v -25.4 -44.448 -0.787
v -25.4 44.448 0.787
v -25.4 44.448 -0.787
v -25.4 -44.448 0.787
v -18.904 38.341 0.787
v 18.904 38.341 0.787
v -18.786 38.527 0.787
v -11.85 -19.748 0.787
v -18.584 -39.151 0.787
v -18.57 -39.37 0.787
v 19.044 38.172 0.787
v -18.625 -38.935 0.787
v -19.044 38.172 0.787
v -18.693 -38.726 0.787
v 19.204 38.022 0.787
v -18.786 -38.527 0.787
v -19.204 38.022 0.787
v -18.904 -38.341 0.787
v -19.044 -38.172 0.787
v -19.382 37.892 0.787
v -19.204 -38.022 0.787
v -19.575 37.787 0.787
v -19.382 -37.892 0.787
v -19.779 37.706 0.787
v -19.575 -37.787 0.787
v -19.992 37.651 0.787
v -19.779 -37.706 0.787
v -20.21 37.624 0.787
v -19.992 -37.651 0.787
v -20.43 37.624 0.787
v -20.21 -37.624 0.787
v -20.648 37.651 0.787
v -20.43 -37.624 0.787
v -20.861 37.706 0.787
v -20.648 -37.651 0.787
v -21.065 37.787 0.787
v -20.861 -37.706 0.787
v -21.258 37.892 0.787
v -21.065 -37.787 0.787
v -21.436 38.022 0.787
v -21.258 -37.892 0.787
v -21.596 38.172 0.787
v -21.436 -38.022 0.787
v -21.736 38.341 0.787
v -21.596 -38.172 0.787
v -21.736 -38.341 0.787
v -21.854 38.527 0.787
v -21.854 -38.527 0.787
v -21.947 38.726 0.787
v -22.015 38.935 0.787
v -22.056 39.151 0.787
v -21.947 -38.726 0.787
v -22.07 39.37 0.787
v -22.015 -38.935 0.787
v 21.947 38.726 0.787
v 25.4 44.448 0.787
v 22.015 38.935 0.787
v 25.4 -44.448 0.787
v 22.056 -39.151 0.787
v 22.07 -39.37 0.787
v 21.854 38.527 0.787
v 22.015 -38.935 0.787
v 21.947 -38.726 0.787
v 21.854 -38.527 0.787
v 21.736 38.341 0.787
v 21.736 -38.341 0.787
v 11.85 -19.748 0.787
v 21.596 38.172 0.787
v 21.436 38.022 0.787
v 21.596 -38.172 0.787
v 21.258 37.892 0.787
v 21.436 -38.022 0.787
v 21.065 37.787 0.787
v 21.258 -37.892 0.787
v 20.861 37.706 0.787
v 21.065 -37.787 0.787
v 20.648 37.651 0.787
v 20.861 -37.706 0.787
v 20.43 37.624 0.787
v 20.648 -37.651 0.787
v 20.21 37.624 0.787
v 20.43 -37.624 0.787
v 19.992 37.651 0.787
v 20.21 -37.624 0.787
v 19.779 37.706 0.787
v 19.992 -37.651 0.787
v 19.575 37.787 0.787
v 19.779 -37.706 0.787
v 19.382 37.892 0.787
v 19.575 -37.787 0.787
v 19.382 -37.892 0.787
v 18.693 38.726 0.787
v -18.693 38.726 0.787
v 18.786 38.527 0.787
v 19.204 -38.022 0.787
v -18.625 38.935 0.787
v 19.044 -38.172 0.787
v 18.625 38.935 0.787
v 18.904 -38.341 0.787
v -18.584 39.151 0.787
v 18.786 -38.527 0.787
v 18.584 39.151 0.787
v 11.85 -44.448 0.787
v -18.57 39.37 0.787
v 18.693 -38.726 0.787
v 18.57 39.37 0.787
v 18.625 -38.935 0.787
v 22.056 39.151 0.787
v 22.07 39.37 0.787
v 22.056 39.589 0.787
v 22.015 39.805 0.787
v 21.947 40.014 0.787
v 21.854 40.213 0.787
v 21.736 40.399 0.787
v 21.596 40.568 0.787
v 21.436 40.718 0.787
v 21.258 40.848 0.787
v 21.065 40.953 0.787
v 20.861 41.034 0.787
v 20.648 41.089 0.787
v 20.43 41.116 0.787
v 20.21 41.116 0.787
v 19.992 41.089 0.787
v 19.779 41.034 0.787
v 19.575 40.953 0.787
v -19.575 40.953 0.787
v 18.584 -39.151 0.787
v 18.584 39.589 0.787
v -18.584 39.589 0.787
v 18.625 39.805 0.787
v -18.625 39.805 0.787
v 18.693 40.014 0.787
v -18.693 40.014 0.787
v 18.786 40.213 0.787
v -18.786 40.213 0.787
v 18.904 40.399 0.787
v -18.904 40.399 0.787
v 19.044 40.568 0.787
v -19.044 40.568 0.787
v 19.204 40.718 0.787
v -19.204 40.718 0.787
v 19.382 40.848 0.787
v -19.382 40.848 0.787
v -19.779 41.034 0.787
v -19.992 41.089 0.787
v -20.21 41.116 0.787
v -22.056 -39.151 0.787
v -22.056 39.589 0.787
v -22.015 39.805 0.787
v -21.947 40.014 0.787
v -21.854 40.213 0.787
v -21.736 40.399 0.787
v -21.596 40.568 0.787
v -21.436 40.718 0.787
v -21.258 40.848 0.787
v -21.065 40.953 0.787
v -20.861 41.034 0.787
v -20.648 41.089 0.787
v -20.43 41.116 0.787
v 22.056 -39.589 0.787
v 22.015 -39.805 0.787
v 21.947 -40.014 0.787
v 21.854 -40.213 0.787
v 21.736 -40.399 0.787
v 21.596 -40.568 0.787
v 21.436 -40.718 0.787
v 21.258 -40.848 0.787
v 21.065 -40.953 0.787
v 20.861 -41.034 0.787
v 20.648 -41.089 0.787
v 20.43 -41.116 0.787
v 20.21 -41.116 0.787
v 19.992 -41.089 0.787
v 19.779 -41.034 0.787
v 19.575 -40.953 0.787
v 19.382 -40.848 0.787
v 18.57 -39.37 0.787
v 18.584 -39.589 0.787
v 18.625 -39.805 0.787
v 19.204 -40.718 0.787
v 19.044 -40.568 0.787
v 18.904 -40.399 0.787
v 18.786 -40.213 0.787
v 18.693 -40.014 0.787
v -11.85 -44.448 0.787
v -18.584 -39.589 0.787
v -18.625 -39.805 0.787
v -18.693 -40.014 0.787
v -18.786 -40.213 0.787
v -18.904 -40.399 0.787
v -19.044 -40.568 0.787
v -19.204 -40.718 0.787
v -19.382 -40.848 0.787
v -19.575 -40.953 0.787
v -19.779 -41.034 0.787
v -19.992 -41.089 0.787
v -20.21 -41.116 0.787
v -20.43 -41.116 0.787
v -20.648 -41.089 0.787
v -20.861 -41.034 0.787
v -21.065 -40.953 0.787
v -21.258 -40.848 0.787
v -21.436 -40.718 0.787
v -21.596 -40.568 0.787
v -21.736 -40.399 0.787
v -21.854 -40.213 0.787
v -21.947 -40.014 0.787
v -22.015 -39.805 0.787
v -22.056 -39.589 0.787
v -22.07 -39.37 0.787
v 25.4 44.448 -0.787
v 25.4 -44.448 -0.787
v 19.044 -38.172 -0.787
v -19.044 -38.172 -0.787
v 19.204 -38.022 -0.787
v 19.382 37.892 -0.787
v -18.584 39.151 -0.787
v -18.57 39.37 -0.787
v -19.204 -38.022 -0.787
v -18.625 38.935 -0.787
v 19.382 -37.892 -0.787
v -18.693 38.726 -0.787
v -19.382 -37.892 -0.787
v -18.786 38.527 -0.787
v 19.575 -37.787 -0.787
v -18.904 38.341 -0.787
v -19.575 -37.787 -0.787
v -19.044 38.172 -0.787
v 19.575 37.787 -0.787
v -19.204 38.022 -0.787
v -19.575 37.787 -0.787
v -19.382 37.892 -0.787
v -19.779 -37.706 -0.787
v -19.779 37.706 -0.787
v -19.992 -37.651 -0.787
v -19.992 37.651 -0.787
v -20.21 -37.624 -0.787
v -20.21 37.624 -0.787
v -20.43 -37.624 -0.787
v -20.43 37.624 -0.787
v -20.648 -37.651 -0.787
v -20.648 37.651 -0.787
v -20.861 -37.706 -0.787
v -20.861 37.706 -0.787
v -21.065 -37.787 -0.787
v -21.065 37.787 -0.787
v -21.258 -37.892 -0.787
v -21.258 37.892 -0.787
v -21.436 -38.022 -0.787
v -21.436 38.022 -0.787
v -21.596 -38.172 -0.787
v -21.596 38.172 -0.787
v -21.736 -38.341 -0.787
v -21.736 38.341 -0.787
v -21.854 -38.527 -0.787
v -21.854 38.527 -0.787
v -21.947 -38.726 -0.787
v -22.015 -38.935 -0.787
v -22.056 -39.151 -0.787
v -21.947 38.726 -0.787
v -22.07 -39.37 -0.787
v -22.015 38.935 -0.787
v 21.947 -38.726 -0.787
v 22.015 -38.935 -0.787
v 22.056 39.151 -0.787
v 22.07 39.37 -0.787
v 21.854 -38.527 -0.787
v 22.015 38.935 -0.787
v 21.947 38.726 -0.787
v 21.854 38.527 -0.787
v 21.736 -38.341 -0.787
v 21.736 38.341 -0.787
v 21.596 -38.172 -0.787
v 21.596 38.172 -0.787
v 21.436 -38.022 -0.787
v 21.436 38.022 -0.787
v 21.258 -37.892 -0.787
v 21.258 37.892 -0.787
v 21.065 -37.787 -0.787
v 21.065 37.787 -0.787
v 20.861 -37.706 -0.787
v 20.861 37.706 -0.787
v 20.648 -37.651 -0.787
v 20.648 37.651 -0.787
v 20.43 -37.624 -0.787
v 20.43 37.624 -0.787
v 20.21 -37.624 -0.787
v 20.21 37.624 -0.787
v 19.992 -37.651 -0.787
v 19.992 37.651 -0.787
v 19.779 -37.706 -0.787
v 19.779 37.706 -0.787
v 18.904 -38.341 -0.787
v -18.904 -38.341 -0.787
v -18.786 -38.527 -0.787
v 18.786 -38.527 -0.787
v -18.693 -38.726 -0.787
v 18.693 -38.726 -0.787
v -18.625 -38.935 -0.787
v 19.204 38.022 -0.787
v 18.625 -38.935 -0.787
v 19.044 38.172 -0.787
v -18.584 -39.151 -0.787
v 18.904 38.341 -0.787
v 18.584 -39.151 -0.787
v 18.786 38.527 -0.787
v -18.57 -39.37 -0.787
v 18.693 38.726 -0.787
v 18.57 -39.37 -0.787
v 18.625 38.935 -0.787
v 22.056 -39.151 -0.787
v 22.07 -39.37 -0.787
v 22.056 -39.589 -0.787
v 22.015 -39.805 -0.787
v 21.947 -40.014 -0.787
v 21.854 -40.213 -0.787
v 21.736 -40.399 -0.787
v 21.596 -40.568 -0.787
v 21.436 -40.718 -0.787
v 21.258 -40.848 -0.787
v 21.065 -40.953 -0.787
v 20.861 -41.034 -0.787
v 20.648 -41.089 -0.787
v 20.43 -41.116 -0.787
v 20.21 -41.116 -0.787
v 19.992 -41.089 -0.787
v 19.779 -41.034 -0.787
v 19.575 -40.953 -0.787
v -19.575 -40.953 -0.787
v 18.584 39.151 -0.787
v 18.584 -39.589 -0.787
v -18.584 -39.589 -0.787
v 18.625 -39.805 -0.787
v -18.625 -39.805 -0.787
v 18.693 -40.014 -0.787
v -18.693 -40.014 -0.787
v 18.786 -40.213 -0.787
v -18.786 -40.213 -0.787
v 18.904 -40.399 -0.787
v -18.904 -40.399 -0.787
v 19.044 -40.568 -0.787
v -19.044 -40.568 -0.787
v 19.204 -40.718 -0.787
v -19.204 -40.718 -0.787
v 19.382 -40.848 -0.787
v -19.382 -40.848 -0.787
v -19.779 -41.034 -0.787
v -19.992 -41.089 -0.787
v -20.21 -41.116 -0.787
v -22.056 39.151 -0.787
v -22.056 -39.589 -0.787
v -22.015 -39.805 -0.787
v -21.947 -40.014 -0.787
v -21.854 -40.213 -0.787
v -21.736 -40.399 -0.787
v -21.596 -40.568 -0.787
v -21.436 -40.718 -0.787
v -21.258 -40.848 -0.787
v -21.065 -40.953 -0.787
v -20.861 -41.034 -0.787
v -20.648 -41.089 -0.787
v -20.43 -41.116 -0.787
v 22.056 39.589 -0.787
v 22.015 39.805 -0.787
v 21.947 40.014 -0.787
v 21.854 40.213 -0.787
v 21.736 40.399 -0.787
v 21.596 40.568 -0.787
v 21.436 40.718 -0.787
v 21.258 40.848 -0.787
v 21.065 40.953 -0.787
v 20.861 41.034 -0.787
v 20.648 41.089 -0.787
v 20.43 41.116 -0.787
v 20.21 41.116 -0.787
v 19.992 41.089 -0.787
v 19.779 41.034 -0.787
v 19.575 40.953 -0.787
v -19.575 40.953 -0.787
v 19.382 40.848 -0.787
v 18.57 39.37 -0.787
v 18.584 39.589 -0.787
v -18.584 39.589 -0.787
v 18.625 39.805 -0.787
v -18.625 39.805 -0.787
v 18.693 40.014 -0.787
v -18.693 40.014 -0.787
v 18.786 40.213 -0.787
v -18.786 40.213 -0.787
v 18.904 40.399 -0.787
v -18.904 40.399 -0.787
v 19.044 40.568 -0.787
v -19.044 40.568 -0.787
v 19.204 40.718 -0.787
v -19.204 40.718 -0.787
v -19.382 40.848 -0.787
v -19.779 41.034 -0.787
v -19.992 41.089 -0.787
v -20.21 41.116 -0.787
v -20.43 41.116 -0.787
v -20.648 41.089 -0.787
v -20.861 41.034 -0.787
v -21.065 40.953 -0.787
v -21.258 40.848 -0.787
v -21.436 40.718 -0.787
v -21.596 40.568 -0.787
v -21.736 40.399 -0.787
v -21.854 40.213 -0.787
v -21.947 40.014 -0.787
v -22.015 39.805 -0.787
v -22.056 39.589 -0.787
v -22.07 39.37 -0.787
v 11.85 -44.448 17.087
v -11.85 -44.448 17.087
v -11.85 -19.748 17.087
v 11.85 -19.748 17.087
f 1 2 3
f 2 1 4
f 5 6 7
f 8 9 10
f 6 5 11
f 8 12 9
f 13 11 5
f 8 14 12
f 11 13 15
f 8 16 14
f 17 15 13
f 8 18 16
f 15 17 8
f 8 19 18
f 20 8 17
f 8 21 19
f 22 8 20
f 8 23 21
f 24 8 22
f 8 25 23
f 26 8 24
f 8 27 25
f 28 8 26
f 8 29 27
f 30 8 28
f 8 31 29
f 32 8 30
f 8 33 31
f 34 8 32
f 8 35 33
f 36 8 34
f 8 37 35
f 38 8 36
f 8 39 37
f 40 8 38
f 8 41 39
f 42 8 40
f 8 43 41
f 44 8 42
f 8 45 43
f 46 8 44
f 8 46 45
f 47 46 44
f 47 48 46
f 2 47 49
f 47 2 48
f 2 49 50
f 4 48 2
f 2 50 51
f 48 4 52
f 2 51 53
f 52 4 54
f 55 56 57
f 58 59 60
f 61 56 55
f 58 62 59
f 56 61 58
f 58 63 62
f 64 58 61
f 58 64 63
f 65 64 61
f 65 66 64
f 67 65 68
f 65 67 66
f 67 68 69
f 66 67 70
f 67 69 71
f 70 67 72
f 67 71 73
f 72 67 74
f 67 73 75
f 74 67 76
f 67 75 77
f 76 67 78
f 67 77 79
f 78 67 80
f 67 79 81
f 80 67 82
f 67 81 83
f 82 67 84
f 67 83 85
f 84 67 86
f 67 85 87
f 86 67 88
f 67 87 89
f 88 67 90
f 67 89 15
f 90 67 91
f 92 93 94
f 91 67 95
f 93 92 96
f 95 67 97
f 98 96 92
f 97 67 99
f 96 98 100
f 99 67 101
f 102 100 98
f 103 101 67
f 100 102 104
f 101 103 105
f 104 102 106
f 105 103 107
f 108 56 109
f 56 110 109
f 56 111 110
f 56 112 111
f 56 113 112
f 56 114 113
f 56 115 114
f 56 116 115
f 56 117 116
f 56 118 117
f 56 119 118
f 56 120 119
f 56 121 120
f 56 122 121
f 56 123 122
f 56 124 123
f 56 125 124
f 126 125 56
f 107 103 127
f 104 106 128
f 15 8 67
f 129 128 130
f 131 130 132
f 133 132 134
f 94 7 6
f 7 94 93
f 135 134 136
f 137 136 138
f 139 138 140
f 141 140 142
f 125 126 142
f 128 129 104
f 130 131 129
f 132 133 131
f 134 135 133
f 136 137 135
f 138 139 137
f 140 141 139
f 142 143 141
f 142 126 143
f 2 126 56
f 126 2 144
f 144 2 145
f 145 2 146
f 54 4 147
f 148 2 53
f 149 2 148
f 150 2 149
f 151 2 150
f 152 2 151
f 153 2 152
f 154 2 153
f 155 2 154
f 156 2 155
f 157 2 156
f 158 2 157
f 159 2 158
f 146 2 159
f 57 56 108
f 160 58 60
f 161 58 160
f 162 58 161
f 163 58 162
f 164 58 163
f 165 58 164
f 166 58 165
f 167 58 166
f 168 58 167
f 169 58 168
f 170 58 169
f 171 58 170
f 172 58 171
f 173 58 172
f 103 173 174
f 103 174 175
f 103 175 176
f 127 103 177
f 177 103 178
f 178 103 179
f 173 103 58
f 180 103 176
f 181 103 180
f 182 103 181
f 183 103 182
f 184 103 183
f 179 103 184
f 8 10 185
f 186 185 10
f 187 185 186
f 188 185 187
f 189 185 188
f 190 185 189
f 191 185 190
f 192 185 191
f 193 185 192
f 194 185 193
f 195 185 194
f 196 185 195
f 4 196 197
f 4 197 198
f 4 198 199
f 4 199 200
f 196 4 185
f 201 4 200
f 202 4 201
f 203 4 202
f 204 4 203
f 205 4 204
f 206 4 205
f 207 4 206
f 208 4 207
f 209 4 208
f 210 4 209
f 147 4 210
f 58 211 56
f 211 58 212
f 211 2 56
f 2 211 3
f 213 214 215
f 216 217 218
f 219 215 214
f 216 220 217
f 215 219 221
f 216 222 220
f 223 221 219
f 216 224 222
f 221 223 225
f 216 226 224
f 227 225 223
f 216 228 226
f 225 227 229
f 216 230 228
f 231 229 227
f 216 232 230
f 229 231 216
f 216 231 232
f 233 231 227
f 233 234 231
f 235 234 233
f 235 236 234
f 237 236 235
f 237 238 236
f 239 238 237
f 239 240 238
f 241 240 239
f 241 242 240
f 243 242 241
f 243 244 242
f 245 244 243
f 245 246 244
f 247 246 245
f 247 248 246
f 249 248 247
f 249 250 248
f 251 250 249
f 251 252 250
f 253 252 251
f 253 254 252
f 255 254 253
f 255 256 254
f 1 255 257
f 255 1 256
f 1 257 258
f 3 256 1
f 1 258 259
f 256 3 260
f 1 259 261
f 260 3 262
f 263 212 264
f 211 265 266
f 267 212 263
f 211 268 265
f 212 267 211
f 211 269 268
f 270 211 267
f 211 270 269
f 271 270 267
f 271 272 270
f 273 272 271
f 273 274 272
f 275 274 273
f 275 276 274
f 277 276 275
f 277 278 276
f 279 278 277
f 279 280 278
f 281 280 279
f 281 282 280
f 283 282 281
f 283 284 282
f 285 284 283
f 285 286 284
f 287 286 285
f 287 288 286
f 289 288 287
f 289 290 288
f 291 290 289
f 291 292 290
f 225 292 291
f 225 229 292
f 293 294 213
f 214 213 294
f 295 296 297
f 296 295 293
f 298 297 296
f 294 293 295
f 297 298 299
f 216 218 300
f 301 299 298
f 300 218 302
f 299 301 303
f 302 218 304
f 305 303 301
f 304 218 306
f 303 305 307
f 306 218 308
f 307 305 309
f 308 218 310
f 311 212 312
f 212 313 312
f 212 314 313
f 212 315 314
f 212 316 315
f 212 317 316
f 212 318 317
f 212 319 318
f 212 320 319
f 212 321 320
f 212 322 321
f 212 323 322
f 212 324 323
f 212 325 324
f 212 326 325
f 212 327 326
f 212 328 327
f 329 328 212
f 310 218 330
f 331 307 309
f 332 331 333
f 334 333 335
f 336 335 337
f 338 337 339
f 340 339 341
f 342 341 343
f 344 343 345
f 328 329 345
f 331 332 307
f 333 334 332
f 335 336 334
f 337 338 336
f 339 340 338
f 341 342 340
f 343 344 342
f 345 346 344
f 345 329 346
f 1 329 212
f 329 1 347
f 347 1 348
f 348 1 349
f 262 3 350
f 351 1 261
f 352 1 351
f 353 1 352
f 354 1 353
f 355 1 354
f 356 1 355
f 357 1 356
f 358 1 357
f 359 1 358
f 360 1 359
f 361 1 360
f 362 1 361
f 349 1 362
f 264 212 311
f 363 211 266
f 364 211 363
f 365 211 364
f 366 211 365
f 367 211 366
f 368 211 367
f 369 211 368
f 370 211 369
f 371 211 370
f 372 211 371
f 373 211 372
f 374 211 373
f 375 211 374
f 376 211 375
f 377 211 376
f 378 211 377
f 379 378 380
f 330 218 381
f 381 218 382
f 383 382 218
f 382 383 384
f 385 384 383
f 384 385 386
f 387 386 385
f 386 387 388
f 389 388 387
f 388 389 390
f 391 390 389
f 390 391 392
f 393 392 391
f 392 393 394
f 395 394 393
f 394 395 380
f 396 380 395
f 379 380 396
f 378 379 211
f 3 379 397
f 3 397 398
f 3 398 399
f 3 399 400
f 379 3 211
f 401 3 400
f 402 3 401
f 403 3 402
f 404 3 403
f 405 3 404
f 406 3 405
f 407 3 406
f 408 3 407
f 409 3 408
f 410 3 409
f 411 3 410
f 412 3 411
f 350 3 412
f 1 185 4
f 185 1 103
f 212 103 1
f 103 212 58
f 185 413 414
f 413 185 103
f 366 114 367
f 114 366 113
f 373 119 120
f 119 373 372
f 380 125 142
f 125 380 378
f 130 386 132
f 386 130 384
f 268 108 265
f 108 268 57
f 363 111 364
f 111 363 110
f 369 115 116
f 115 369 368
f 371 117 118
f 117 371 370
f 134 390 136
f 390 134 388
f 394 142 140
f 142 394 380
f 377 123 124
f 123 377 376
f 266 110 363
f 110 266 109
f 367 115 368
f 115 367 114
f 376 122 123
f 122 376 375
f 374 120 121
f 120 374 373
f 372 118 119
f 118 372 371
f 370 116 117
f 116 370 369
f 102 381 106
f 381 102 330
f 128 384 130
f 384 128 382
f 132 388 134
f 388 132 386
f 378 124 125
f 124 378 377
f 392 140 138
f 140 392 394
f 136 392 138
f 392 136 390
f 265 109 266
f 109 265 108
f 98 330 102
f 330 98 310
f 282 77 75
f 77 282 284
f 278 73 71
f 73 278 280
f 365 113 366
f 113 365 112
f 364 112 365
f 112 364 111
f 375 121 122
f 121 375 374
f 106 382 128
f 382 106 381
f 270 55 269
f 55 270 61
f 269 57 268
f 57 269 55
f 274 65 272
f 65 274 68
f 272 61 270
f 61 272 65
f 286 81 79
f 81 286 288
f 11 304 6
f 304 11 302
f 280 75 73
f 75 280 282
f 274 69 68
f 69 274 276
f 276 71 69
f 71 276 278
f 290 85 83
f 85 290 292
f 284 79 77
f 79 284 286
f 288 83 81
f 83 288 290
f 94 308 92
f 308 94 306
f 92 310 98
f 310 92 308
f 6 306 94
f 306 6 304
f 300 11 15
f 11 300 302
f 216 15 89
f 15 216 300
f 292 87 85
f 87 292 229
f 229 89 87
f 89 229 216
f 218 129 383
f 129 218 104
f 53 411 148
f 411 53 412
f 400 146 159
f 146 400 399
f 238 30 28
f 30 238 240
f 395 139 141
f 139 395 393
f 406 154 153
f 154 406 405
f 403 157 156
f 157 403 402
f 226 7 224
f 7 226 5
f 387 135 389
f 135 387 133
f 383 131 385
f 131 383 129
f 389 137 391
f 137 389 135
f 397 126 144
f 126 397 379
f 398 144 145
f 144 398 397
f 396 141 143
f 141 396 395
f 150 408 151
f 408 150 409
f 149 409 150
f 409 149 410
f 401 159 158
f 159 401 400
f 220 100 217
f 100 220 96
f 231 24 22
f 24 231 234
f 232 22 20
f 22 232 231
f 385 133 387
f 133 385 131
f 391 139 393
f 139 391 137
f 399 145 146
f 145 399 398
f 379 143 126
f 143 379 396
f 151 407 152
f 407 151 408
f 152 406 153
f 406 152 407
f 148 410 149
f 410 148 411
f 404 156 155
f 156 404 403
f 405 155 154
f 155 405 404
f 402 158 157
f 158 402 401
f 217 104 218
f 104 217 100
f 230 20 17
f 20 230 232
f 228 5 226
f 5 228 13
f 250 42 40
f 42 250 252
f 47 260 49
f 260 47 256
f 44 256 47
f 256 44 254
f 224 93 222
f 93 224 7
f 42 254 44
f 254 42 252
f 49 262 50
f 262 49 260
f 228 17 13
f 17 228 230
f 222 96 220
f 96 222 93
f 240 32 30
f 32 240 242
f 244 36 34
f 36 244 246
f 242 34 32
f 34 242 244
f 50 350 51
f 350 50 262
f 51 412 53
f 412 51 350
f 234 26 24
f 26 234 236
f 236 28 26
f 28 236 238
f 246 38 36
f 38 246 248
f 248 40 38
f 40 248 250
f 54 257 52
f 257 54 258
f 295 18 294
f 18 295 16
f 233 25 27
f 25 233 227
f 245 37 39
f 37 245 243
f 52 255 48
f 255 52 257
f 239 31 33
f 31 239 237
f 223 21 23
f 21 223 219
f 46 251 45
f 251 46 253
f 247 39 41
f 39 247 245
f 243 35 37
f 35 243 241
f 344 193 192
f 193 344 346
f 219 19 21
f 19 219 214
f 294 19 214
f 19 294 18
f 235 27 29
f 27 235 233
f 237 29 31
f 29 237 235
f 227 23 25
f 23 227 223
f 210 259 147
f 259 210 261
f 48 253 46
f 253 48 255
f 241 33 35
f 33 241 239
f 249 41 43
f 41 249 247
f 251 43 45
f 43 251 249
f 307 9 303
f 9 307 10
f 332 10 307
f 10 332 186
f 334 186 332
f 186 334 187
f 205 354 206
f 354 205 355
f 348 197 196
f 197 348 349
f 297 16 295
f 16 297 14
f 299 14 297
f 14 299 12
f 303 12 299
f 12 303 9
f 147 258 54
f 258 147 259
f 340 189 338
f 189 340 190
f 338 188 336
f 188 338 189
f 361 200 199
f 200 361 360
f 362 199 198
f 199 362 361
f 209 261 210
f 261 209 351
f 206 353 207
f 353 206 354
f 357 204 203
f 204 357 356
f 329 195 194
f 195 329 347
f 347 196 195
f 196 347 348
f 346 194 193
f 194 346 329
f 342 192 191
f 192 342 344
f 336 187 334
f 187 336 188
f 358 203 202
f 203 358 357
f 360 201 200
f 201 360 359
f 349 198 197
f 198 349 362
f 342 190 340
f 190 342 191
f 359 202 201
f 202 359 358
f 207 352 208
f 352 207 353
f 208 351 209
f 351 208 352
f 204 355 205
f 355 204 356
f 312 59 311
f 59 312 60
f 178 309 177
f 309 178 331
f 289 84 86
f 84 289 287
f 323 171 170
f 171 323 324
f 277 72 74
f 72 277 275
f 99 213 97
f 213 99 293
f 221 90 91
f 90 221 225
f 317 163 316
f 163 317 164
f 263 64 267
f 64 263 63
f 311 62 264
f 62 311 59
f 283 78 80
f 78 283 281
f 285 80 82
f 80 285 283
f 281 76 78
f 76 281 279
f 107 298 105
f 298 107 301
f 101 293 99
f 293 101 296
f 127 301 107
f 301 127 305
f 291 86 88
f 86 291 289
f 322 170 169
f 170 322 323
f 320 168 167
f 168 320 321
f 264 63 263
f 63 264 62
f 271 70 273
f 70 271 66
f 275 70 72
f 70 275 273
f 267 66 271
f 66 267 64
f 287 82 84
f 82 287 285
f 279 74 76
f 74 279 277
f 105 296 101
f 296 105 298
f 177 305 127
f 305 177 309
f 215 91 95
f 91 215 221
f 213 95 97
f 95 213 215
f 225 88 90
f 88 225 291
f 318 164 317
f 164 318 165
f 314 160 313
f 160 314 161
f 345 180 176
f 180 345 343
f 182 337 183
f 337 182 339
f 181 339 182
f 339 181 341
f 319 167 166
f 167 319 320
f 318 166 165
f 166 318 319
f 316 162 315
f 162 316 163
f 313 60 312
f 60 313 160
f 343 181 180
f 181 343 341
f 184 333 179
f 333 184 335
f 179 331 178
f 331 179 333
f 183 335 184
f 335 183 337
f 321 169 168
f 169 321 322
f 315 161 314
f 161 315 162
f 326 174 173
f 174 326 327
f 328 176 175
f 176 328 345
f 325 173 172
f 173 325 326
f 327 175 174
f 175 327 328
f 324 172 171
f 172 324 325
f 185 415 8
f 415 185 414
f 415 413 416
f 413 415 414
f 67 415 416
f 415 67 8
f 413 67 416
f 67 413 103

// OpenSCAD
  boardX=200.66-149.86; // board width in mm
  boardY=158.34-69.443; // board length
  boardZ=0.062*25.4; // board thickness
  screwsX=195.58-154.94; // distance between screws
  screwsY=153.2636-74.5236; // distance between screws
  screwR=3.5/2; // radius of screwholes
  A=7.9;  // width of anderson powerpole plastic
  E=16.3; // height of two anderson powerpole plastics stacked
  C=24.7; // length of anderson powerpole plastic
difference() { // subtract from the first line everything below it
  color("purple") cube([boardX,boardY,boardZ],center=true);
  translate([screwsX/2,screwsY/2,-4]) cylinder(r=screwR,h=8,$fn=50);
  translate([screwsX/-2,screwsY/2,-4]) cylinder(r=screwR,h=8,$fn=50);
  translate([screwsX/-2,screwsY/-2,-4]) cylinder(r=screwR,h=8,$fn=50);
  translate([screwsX/2,screwsY/-2,-4]) cylinder(r=screwR,h=8,$fn=50);
  }
  translate([-1*A,boardY/-2+C/2,(E+boardZ)/2]) color("yellow") cube([A,C,E],center=true);
  translate([0,boardY/-2+C/2,(E+boardZ)/2]) color("green")  cube([A,C,E],center=true);
  translate([A,boardY/-2+C/2,(E+boardZ)/2]) color("blue")   cube([A,C,E],center=true);
